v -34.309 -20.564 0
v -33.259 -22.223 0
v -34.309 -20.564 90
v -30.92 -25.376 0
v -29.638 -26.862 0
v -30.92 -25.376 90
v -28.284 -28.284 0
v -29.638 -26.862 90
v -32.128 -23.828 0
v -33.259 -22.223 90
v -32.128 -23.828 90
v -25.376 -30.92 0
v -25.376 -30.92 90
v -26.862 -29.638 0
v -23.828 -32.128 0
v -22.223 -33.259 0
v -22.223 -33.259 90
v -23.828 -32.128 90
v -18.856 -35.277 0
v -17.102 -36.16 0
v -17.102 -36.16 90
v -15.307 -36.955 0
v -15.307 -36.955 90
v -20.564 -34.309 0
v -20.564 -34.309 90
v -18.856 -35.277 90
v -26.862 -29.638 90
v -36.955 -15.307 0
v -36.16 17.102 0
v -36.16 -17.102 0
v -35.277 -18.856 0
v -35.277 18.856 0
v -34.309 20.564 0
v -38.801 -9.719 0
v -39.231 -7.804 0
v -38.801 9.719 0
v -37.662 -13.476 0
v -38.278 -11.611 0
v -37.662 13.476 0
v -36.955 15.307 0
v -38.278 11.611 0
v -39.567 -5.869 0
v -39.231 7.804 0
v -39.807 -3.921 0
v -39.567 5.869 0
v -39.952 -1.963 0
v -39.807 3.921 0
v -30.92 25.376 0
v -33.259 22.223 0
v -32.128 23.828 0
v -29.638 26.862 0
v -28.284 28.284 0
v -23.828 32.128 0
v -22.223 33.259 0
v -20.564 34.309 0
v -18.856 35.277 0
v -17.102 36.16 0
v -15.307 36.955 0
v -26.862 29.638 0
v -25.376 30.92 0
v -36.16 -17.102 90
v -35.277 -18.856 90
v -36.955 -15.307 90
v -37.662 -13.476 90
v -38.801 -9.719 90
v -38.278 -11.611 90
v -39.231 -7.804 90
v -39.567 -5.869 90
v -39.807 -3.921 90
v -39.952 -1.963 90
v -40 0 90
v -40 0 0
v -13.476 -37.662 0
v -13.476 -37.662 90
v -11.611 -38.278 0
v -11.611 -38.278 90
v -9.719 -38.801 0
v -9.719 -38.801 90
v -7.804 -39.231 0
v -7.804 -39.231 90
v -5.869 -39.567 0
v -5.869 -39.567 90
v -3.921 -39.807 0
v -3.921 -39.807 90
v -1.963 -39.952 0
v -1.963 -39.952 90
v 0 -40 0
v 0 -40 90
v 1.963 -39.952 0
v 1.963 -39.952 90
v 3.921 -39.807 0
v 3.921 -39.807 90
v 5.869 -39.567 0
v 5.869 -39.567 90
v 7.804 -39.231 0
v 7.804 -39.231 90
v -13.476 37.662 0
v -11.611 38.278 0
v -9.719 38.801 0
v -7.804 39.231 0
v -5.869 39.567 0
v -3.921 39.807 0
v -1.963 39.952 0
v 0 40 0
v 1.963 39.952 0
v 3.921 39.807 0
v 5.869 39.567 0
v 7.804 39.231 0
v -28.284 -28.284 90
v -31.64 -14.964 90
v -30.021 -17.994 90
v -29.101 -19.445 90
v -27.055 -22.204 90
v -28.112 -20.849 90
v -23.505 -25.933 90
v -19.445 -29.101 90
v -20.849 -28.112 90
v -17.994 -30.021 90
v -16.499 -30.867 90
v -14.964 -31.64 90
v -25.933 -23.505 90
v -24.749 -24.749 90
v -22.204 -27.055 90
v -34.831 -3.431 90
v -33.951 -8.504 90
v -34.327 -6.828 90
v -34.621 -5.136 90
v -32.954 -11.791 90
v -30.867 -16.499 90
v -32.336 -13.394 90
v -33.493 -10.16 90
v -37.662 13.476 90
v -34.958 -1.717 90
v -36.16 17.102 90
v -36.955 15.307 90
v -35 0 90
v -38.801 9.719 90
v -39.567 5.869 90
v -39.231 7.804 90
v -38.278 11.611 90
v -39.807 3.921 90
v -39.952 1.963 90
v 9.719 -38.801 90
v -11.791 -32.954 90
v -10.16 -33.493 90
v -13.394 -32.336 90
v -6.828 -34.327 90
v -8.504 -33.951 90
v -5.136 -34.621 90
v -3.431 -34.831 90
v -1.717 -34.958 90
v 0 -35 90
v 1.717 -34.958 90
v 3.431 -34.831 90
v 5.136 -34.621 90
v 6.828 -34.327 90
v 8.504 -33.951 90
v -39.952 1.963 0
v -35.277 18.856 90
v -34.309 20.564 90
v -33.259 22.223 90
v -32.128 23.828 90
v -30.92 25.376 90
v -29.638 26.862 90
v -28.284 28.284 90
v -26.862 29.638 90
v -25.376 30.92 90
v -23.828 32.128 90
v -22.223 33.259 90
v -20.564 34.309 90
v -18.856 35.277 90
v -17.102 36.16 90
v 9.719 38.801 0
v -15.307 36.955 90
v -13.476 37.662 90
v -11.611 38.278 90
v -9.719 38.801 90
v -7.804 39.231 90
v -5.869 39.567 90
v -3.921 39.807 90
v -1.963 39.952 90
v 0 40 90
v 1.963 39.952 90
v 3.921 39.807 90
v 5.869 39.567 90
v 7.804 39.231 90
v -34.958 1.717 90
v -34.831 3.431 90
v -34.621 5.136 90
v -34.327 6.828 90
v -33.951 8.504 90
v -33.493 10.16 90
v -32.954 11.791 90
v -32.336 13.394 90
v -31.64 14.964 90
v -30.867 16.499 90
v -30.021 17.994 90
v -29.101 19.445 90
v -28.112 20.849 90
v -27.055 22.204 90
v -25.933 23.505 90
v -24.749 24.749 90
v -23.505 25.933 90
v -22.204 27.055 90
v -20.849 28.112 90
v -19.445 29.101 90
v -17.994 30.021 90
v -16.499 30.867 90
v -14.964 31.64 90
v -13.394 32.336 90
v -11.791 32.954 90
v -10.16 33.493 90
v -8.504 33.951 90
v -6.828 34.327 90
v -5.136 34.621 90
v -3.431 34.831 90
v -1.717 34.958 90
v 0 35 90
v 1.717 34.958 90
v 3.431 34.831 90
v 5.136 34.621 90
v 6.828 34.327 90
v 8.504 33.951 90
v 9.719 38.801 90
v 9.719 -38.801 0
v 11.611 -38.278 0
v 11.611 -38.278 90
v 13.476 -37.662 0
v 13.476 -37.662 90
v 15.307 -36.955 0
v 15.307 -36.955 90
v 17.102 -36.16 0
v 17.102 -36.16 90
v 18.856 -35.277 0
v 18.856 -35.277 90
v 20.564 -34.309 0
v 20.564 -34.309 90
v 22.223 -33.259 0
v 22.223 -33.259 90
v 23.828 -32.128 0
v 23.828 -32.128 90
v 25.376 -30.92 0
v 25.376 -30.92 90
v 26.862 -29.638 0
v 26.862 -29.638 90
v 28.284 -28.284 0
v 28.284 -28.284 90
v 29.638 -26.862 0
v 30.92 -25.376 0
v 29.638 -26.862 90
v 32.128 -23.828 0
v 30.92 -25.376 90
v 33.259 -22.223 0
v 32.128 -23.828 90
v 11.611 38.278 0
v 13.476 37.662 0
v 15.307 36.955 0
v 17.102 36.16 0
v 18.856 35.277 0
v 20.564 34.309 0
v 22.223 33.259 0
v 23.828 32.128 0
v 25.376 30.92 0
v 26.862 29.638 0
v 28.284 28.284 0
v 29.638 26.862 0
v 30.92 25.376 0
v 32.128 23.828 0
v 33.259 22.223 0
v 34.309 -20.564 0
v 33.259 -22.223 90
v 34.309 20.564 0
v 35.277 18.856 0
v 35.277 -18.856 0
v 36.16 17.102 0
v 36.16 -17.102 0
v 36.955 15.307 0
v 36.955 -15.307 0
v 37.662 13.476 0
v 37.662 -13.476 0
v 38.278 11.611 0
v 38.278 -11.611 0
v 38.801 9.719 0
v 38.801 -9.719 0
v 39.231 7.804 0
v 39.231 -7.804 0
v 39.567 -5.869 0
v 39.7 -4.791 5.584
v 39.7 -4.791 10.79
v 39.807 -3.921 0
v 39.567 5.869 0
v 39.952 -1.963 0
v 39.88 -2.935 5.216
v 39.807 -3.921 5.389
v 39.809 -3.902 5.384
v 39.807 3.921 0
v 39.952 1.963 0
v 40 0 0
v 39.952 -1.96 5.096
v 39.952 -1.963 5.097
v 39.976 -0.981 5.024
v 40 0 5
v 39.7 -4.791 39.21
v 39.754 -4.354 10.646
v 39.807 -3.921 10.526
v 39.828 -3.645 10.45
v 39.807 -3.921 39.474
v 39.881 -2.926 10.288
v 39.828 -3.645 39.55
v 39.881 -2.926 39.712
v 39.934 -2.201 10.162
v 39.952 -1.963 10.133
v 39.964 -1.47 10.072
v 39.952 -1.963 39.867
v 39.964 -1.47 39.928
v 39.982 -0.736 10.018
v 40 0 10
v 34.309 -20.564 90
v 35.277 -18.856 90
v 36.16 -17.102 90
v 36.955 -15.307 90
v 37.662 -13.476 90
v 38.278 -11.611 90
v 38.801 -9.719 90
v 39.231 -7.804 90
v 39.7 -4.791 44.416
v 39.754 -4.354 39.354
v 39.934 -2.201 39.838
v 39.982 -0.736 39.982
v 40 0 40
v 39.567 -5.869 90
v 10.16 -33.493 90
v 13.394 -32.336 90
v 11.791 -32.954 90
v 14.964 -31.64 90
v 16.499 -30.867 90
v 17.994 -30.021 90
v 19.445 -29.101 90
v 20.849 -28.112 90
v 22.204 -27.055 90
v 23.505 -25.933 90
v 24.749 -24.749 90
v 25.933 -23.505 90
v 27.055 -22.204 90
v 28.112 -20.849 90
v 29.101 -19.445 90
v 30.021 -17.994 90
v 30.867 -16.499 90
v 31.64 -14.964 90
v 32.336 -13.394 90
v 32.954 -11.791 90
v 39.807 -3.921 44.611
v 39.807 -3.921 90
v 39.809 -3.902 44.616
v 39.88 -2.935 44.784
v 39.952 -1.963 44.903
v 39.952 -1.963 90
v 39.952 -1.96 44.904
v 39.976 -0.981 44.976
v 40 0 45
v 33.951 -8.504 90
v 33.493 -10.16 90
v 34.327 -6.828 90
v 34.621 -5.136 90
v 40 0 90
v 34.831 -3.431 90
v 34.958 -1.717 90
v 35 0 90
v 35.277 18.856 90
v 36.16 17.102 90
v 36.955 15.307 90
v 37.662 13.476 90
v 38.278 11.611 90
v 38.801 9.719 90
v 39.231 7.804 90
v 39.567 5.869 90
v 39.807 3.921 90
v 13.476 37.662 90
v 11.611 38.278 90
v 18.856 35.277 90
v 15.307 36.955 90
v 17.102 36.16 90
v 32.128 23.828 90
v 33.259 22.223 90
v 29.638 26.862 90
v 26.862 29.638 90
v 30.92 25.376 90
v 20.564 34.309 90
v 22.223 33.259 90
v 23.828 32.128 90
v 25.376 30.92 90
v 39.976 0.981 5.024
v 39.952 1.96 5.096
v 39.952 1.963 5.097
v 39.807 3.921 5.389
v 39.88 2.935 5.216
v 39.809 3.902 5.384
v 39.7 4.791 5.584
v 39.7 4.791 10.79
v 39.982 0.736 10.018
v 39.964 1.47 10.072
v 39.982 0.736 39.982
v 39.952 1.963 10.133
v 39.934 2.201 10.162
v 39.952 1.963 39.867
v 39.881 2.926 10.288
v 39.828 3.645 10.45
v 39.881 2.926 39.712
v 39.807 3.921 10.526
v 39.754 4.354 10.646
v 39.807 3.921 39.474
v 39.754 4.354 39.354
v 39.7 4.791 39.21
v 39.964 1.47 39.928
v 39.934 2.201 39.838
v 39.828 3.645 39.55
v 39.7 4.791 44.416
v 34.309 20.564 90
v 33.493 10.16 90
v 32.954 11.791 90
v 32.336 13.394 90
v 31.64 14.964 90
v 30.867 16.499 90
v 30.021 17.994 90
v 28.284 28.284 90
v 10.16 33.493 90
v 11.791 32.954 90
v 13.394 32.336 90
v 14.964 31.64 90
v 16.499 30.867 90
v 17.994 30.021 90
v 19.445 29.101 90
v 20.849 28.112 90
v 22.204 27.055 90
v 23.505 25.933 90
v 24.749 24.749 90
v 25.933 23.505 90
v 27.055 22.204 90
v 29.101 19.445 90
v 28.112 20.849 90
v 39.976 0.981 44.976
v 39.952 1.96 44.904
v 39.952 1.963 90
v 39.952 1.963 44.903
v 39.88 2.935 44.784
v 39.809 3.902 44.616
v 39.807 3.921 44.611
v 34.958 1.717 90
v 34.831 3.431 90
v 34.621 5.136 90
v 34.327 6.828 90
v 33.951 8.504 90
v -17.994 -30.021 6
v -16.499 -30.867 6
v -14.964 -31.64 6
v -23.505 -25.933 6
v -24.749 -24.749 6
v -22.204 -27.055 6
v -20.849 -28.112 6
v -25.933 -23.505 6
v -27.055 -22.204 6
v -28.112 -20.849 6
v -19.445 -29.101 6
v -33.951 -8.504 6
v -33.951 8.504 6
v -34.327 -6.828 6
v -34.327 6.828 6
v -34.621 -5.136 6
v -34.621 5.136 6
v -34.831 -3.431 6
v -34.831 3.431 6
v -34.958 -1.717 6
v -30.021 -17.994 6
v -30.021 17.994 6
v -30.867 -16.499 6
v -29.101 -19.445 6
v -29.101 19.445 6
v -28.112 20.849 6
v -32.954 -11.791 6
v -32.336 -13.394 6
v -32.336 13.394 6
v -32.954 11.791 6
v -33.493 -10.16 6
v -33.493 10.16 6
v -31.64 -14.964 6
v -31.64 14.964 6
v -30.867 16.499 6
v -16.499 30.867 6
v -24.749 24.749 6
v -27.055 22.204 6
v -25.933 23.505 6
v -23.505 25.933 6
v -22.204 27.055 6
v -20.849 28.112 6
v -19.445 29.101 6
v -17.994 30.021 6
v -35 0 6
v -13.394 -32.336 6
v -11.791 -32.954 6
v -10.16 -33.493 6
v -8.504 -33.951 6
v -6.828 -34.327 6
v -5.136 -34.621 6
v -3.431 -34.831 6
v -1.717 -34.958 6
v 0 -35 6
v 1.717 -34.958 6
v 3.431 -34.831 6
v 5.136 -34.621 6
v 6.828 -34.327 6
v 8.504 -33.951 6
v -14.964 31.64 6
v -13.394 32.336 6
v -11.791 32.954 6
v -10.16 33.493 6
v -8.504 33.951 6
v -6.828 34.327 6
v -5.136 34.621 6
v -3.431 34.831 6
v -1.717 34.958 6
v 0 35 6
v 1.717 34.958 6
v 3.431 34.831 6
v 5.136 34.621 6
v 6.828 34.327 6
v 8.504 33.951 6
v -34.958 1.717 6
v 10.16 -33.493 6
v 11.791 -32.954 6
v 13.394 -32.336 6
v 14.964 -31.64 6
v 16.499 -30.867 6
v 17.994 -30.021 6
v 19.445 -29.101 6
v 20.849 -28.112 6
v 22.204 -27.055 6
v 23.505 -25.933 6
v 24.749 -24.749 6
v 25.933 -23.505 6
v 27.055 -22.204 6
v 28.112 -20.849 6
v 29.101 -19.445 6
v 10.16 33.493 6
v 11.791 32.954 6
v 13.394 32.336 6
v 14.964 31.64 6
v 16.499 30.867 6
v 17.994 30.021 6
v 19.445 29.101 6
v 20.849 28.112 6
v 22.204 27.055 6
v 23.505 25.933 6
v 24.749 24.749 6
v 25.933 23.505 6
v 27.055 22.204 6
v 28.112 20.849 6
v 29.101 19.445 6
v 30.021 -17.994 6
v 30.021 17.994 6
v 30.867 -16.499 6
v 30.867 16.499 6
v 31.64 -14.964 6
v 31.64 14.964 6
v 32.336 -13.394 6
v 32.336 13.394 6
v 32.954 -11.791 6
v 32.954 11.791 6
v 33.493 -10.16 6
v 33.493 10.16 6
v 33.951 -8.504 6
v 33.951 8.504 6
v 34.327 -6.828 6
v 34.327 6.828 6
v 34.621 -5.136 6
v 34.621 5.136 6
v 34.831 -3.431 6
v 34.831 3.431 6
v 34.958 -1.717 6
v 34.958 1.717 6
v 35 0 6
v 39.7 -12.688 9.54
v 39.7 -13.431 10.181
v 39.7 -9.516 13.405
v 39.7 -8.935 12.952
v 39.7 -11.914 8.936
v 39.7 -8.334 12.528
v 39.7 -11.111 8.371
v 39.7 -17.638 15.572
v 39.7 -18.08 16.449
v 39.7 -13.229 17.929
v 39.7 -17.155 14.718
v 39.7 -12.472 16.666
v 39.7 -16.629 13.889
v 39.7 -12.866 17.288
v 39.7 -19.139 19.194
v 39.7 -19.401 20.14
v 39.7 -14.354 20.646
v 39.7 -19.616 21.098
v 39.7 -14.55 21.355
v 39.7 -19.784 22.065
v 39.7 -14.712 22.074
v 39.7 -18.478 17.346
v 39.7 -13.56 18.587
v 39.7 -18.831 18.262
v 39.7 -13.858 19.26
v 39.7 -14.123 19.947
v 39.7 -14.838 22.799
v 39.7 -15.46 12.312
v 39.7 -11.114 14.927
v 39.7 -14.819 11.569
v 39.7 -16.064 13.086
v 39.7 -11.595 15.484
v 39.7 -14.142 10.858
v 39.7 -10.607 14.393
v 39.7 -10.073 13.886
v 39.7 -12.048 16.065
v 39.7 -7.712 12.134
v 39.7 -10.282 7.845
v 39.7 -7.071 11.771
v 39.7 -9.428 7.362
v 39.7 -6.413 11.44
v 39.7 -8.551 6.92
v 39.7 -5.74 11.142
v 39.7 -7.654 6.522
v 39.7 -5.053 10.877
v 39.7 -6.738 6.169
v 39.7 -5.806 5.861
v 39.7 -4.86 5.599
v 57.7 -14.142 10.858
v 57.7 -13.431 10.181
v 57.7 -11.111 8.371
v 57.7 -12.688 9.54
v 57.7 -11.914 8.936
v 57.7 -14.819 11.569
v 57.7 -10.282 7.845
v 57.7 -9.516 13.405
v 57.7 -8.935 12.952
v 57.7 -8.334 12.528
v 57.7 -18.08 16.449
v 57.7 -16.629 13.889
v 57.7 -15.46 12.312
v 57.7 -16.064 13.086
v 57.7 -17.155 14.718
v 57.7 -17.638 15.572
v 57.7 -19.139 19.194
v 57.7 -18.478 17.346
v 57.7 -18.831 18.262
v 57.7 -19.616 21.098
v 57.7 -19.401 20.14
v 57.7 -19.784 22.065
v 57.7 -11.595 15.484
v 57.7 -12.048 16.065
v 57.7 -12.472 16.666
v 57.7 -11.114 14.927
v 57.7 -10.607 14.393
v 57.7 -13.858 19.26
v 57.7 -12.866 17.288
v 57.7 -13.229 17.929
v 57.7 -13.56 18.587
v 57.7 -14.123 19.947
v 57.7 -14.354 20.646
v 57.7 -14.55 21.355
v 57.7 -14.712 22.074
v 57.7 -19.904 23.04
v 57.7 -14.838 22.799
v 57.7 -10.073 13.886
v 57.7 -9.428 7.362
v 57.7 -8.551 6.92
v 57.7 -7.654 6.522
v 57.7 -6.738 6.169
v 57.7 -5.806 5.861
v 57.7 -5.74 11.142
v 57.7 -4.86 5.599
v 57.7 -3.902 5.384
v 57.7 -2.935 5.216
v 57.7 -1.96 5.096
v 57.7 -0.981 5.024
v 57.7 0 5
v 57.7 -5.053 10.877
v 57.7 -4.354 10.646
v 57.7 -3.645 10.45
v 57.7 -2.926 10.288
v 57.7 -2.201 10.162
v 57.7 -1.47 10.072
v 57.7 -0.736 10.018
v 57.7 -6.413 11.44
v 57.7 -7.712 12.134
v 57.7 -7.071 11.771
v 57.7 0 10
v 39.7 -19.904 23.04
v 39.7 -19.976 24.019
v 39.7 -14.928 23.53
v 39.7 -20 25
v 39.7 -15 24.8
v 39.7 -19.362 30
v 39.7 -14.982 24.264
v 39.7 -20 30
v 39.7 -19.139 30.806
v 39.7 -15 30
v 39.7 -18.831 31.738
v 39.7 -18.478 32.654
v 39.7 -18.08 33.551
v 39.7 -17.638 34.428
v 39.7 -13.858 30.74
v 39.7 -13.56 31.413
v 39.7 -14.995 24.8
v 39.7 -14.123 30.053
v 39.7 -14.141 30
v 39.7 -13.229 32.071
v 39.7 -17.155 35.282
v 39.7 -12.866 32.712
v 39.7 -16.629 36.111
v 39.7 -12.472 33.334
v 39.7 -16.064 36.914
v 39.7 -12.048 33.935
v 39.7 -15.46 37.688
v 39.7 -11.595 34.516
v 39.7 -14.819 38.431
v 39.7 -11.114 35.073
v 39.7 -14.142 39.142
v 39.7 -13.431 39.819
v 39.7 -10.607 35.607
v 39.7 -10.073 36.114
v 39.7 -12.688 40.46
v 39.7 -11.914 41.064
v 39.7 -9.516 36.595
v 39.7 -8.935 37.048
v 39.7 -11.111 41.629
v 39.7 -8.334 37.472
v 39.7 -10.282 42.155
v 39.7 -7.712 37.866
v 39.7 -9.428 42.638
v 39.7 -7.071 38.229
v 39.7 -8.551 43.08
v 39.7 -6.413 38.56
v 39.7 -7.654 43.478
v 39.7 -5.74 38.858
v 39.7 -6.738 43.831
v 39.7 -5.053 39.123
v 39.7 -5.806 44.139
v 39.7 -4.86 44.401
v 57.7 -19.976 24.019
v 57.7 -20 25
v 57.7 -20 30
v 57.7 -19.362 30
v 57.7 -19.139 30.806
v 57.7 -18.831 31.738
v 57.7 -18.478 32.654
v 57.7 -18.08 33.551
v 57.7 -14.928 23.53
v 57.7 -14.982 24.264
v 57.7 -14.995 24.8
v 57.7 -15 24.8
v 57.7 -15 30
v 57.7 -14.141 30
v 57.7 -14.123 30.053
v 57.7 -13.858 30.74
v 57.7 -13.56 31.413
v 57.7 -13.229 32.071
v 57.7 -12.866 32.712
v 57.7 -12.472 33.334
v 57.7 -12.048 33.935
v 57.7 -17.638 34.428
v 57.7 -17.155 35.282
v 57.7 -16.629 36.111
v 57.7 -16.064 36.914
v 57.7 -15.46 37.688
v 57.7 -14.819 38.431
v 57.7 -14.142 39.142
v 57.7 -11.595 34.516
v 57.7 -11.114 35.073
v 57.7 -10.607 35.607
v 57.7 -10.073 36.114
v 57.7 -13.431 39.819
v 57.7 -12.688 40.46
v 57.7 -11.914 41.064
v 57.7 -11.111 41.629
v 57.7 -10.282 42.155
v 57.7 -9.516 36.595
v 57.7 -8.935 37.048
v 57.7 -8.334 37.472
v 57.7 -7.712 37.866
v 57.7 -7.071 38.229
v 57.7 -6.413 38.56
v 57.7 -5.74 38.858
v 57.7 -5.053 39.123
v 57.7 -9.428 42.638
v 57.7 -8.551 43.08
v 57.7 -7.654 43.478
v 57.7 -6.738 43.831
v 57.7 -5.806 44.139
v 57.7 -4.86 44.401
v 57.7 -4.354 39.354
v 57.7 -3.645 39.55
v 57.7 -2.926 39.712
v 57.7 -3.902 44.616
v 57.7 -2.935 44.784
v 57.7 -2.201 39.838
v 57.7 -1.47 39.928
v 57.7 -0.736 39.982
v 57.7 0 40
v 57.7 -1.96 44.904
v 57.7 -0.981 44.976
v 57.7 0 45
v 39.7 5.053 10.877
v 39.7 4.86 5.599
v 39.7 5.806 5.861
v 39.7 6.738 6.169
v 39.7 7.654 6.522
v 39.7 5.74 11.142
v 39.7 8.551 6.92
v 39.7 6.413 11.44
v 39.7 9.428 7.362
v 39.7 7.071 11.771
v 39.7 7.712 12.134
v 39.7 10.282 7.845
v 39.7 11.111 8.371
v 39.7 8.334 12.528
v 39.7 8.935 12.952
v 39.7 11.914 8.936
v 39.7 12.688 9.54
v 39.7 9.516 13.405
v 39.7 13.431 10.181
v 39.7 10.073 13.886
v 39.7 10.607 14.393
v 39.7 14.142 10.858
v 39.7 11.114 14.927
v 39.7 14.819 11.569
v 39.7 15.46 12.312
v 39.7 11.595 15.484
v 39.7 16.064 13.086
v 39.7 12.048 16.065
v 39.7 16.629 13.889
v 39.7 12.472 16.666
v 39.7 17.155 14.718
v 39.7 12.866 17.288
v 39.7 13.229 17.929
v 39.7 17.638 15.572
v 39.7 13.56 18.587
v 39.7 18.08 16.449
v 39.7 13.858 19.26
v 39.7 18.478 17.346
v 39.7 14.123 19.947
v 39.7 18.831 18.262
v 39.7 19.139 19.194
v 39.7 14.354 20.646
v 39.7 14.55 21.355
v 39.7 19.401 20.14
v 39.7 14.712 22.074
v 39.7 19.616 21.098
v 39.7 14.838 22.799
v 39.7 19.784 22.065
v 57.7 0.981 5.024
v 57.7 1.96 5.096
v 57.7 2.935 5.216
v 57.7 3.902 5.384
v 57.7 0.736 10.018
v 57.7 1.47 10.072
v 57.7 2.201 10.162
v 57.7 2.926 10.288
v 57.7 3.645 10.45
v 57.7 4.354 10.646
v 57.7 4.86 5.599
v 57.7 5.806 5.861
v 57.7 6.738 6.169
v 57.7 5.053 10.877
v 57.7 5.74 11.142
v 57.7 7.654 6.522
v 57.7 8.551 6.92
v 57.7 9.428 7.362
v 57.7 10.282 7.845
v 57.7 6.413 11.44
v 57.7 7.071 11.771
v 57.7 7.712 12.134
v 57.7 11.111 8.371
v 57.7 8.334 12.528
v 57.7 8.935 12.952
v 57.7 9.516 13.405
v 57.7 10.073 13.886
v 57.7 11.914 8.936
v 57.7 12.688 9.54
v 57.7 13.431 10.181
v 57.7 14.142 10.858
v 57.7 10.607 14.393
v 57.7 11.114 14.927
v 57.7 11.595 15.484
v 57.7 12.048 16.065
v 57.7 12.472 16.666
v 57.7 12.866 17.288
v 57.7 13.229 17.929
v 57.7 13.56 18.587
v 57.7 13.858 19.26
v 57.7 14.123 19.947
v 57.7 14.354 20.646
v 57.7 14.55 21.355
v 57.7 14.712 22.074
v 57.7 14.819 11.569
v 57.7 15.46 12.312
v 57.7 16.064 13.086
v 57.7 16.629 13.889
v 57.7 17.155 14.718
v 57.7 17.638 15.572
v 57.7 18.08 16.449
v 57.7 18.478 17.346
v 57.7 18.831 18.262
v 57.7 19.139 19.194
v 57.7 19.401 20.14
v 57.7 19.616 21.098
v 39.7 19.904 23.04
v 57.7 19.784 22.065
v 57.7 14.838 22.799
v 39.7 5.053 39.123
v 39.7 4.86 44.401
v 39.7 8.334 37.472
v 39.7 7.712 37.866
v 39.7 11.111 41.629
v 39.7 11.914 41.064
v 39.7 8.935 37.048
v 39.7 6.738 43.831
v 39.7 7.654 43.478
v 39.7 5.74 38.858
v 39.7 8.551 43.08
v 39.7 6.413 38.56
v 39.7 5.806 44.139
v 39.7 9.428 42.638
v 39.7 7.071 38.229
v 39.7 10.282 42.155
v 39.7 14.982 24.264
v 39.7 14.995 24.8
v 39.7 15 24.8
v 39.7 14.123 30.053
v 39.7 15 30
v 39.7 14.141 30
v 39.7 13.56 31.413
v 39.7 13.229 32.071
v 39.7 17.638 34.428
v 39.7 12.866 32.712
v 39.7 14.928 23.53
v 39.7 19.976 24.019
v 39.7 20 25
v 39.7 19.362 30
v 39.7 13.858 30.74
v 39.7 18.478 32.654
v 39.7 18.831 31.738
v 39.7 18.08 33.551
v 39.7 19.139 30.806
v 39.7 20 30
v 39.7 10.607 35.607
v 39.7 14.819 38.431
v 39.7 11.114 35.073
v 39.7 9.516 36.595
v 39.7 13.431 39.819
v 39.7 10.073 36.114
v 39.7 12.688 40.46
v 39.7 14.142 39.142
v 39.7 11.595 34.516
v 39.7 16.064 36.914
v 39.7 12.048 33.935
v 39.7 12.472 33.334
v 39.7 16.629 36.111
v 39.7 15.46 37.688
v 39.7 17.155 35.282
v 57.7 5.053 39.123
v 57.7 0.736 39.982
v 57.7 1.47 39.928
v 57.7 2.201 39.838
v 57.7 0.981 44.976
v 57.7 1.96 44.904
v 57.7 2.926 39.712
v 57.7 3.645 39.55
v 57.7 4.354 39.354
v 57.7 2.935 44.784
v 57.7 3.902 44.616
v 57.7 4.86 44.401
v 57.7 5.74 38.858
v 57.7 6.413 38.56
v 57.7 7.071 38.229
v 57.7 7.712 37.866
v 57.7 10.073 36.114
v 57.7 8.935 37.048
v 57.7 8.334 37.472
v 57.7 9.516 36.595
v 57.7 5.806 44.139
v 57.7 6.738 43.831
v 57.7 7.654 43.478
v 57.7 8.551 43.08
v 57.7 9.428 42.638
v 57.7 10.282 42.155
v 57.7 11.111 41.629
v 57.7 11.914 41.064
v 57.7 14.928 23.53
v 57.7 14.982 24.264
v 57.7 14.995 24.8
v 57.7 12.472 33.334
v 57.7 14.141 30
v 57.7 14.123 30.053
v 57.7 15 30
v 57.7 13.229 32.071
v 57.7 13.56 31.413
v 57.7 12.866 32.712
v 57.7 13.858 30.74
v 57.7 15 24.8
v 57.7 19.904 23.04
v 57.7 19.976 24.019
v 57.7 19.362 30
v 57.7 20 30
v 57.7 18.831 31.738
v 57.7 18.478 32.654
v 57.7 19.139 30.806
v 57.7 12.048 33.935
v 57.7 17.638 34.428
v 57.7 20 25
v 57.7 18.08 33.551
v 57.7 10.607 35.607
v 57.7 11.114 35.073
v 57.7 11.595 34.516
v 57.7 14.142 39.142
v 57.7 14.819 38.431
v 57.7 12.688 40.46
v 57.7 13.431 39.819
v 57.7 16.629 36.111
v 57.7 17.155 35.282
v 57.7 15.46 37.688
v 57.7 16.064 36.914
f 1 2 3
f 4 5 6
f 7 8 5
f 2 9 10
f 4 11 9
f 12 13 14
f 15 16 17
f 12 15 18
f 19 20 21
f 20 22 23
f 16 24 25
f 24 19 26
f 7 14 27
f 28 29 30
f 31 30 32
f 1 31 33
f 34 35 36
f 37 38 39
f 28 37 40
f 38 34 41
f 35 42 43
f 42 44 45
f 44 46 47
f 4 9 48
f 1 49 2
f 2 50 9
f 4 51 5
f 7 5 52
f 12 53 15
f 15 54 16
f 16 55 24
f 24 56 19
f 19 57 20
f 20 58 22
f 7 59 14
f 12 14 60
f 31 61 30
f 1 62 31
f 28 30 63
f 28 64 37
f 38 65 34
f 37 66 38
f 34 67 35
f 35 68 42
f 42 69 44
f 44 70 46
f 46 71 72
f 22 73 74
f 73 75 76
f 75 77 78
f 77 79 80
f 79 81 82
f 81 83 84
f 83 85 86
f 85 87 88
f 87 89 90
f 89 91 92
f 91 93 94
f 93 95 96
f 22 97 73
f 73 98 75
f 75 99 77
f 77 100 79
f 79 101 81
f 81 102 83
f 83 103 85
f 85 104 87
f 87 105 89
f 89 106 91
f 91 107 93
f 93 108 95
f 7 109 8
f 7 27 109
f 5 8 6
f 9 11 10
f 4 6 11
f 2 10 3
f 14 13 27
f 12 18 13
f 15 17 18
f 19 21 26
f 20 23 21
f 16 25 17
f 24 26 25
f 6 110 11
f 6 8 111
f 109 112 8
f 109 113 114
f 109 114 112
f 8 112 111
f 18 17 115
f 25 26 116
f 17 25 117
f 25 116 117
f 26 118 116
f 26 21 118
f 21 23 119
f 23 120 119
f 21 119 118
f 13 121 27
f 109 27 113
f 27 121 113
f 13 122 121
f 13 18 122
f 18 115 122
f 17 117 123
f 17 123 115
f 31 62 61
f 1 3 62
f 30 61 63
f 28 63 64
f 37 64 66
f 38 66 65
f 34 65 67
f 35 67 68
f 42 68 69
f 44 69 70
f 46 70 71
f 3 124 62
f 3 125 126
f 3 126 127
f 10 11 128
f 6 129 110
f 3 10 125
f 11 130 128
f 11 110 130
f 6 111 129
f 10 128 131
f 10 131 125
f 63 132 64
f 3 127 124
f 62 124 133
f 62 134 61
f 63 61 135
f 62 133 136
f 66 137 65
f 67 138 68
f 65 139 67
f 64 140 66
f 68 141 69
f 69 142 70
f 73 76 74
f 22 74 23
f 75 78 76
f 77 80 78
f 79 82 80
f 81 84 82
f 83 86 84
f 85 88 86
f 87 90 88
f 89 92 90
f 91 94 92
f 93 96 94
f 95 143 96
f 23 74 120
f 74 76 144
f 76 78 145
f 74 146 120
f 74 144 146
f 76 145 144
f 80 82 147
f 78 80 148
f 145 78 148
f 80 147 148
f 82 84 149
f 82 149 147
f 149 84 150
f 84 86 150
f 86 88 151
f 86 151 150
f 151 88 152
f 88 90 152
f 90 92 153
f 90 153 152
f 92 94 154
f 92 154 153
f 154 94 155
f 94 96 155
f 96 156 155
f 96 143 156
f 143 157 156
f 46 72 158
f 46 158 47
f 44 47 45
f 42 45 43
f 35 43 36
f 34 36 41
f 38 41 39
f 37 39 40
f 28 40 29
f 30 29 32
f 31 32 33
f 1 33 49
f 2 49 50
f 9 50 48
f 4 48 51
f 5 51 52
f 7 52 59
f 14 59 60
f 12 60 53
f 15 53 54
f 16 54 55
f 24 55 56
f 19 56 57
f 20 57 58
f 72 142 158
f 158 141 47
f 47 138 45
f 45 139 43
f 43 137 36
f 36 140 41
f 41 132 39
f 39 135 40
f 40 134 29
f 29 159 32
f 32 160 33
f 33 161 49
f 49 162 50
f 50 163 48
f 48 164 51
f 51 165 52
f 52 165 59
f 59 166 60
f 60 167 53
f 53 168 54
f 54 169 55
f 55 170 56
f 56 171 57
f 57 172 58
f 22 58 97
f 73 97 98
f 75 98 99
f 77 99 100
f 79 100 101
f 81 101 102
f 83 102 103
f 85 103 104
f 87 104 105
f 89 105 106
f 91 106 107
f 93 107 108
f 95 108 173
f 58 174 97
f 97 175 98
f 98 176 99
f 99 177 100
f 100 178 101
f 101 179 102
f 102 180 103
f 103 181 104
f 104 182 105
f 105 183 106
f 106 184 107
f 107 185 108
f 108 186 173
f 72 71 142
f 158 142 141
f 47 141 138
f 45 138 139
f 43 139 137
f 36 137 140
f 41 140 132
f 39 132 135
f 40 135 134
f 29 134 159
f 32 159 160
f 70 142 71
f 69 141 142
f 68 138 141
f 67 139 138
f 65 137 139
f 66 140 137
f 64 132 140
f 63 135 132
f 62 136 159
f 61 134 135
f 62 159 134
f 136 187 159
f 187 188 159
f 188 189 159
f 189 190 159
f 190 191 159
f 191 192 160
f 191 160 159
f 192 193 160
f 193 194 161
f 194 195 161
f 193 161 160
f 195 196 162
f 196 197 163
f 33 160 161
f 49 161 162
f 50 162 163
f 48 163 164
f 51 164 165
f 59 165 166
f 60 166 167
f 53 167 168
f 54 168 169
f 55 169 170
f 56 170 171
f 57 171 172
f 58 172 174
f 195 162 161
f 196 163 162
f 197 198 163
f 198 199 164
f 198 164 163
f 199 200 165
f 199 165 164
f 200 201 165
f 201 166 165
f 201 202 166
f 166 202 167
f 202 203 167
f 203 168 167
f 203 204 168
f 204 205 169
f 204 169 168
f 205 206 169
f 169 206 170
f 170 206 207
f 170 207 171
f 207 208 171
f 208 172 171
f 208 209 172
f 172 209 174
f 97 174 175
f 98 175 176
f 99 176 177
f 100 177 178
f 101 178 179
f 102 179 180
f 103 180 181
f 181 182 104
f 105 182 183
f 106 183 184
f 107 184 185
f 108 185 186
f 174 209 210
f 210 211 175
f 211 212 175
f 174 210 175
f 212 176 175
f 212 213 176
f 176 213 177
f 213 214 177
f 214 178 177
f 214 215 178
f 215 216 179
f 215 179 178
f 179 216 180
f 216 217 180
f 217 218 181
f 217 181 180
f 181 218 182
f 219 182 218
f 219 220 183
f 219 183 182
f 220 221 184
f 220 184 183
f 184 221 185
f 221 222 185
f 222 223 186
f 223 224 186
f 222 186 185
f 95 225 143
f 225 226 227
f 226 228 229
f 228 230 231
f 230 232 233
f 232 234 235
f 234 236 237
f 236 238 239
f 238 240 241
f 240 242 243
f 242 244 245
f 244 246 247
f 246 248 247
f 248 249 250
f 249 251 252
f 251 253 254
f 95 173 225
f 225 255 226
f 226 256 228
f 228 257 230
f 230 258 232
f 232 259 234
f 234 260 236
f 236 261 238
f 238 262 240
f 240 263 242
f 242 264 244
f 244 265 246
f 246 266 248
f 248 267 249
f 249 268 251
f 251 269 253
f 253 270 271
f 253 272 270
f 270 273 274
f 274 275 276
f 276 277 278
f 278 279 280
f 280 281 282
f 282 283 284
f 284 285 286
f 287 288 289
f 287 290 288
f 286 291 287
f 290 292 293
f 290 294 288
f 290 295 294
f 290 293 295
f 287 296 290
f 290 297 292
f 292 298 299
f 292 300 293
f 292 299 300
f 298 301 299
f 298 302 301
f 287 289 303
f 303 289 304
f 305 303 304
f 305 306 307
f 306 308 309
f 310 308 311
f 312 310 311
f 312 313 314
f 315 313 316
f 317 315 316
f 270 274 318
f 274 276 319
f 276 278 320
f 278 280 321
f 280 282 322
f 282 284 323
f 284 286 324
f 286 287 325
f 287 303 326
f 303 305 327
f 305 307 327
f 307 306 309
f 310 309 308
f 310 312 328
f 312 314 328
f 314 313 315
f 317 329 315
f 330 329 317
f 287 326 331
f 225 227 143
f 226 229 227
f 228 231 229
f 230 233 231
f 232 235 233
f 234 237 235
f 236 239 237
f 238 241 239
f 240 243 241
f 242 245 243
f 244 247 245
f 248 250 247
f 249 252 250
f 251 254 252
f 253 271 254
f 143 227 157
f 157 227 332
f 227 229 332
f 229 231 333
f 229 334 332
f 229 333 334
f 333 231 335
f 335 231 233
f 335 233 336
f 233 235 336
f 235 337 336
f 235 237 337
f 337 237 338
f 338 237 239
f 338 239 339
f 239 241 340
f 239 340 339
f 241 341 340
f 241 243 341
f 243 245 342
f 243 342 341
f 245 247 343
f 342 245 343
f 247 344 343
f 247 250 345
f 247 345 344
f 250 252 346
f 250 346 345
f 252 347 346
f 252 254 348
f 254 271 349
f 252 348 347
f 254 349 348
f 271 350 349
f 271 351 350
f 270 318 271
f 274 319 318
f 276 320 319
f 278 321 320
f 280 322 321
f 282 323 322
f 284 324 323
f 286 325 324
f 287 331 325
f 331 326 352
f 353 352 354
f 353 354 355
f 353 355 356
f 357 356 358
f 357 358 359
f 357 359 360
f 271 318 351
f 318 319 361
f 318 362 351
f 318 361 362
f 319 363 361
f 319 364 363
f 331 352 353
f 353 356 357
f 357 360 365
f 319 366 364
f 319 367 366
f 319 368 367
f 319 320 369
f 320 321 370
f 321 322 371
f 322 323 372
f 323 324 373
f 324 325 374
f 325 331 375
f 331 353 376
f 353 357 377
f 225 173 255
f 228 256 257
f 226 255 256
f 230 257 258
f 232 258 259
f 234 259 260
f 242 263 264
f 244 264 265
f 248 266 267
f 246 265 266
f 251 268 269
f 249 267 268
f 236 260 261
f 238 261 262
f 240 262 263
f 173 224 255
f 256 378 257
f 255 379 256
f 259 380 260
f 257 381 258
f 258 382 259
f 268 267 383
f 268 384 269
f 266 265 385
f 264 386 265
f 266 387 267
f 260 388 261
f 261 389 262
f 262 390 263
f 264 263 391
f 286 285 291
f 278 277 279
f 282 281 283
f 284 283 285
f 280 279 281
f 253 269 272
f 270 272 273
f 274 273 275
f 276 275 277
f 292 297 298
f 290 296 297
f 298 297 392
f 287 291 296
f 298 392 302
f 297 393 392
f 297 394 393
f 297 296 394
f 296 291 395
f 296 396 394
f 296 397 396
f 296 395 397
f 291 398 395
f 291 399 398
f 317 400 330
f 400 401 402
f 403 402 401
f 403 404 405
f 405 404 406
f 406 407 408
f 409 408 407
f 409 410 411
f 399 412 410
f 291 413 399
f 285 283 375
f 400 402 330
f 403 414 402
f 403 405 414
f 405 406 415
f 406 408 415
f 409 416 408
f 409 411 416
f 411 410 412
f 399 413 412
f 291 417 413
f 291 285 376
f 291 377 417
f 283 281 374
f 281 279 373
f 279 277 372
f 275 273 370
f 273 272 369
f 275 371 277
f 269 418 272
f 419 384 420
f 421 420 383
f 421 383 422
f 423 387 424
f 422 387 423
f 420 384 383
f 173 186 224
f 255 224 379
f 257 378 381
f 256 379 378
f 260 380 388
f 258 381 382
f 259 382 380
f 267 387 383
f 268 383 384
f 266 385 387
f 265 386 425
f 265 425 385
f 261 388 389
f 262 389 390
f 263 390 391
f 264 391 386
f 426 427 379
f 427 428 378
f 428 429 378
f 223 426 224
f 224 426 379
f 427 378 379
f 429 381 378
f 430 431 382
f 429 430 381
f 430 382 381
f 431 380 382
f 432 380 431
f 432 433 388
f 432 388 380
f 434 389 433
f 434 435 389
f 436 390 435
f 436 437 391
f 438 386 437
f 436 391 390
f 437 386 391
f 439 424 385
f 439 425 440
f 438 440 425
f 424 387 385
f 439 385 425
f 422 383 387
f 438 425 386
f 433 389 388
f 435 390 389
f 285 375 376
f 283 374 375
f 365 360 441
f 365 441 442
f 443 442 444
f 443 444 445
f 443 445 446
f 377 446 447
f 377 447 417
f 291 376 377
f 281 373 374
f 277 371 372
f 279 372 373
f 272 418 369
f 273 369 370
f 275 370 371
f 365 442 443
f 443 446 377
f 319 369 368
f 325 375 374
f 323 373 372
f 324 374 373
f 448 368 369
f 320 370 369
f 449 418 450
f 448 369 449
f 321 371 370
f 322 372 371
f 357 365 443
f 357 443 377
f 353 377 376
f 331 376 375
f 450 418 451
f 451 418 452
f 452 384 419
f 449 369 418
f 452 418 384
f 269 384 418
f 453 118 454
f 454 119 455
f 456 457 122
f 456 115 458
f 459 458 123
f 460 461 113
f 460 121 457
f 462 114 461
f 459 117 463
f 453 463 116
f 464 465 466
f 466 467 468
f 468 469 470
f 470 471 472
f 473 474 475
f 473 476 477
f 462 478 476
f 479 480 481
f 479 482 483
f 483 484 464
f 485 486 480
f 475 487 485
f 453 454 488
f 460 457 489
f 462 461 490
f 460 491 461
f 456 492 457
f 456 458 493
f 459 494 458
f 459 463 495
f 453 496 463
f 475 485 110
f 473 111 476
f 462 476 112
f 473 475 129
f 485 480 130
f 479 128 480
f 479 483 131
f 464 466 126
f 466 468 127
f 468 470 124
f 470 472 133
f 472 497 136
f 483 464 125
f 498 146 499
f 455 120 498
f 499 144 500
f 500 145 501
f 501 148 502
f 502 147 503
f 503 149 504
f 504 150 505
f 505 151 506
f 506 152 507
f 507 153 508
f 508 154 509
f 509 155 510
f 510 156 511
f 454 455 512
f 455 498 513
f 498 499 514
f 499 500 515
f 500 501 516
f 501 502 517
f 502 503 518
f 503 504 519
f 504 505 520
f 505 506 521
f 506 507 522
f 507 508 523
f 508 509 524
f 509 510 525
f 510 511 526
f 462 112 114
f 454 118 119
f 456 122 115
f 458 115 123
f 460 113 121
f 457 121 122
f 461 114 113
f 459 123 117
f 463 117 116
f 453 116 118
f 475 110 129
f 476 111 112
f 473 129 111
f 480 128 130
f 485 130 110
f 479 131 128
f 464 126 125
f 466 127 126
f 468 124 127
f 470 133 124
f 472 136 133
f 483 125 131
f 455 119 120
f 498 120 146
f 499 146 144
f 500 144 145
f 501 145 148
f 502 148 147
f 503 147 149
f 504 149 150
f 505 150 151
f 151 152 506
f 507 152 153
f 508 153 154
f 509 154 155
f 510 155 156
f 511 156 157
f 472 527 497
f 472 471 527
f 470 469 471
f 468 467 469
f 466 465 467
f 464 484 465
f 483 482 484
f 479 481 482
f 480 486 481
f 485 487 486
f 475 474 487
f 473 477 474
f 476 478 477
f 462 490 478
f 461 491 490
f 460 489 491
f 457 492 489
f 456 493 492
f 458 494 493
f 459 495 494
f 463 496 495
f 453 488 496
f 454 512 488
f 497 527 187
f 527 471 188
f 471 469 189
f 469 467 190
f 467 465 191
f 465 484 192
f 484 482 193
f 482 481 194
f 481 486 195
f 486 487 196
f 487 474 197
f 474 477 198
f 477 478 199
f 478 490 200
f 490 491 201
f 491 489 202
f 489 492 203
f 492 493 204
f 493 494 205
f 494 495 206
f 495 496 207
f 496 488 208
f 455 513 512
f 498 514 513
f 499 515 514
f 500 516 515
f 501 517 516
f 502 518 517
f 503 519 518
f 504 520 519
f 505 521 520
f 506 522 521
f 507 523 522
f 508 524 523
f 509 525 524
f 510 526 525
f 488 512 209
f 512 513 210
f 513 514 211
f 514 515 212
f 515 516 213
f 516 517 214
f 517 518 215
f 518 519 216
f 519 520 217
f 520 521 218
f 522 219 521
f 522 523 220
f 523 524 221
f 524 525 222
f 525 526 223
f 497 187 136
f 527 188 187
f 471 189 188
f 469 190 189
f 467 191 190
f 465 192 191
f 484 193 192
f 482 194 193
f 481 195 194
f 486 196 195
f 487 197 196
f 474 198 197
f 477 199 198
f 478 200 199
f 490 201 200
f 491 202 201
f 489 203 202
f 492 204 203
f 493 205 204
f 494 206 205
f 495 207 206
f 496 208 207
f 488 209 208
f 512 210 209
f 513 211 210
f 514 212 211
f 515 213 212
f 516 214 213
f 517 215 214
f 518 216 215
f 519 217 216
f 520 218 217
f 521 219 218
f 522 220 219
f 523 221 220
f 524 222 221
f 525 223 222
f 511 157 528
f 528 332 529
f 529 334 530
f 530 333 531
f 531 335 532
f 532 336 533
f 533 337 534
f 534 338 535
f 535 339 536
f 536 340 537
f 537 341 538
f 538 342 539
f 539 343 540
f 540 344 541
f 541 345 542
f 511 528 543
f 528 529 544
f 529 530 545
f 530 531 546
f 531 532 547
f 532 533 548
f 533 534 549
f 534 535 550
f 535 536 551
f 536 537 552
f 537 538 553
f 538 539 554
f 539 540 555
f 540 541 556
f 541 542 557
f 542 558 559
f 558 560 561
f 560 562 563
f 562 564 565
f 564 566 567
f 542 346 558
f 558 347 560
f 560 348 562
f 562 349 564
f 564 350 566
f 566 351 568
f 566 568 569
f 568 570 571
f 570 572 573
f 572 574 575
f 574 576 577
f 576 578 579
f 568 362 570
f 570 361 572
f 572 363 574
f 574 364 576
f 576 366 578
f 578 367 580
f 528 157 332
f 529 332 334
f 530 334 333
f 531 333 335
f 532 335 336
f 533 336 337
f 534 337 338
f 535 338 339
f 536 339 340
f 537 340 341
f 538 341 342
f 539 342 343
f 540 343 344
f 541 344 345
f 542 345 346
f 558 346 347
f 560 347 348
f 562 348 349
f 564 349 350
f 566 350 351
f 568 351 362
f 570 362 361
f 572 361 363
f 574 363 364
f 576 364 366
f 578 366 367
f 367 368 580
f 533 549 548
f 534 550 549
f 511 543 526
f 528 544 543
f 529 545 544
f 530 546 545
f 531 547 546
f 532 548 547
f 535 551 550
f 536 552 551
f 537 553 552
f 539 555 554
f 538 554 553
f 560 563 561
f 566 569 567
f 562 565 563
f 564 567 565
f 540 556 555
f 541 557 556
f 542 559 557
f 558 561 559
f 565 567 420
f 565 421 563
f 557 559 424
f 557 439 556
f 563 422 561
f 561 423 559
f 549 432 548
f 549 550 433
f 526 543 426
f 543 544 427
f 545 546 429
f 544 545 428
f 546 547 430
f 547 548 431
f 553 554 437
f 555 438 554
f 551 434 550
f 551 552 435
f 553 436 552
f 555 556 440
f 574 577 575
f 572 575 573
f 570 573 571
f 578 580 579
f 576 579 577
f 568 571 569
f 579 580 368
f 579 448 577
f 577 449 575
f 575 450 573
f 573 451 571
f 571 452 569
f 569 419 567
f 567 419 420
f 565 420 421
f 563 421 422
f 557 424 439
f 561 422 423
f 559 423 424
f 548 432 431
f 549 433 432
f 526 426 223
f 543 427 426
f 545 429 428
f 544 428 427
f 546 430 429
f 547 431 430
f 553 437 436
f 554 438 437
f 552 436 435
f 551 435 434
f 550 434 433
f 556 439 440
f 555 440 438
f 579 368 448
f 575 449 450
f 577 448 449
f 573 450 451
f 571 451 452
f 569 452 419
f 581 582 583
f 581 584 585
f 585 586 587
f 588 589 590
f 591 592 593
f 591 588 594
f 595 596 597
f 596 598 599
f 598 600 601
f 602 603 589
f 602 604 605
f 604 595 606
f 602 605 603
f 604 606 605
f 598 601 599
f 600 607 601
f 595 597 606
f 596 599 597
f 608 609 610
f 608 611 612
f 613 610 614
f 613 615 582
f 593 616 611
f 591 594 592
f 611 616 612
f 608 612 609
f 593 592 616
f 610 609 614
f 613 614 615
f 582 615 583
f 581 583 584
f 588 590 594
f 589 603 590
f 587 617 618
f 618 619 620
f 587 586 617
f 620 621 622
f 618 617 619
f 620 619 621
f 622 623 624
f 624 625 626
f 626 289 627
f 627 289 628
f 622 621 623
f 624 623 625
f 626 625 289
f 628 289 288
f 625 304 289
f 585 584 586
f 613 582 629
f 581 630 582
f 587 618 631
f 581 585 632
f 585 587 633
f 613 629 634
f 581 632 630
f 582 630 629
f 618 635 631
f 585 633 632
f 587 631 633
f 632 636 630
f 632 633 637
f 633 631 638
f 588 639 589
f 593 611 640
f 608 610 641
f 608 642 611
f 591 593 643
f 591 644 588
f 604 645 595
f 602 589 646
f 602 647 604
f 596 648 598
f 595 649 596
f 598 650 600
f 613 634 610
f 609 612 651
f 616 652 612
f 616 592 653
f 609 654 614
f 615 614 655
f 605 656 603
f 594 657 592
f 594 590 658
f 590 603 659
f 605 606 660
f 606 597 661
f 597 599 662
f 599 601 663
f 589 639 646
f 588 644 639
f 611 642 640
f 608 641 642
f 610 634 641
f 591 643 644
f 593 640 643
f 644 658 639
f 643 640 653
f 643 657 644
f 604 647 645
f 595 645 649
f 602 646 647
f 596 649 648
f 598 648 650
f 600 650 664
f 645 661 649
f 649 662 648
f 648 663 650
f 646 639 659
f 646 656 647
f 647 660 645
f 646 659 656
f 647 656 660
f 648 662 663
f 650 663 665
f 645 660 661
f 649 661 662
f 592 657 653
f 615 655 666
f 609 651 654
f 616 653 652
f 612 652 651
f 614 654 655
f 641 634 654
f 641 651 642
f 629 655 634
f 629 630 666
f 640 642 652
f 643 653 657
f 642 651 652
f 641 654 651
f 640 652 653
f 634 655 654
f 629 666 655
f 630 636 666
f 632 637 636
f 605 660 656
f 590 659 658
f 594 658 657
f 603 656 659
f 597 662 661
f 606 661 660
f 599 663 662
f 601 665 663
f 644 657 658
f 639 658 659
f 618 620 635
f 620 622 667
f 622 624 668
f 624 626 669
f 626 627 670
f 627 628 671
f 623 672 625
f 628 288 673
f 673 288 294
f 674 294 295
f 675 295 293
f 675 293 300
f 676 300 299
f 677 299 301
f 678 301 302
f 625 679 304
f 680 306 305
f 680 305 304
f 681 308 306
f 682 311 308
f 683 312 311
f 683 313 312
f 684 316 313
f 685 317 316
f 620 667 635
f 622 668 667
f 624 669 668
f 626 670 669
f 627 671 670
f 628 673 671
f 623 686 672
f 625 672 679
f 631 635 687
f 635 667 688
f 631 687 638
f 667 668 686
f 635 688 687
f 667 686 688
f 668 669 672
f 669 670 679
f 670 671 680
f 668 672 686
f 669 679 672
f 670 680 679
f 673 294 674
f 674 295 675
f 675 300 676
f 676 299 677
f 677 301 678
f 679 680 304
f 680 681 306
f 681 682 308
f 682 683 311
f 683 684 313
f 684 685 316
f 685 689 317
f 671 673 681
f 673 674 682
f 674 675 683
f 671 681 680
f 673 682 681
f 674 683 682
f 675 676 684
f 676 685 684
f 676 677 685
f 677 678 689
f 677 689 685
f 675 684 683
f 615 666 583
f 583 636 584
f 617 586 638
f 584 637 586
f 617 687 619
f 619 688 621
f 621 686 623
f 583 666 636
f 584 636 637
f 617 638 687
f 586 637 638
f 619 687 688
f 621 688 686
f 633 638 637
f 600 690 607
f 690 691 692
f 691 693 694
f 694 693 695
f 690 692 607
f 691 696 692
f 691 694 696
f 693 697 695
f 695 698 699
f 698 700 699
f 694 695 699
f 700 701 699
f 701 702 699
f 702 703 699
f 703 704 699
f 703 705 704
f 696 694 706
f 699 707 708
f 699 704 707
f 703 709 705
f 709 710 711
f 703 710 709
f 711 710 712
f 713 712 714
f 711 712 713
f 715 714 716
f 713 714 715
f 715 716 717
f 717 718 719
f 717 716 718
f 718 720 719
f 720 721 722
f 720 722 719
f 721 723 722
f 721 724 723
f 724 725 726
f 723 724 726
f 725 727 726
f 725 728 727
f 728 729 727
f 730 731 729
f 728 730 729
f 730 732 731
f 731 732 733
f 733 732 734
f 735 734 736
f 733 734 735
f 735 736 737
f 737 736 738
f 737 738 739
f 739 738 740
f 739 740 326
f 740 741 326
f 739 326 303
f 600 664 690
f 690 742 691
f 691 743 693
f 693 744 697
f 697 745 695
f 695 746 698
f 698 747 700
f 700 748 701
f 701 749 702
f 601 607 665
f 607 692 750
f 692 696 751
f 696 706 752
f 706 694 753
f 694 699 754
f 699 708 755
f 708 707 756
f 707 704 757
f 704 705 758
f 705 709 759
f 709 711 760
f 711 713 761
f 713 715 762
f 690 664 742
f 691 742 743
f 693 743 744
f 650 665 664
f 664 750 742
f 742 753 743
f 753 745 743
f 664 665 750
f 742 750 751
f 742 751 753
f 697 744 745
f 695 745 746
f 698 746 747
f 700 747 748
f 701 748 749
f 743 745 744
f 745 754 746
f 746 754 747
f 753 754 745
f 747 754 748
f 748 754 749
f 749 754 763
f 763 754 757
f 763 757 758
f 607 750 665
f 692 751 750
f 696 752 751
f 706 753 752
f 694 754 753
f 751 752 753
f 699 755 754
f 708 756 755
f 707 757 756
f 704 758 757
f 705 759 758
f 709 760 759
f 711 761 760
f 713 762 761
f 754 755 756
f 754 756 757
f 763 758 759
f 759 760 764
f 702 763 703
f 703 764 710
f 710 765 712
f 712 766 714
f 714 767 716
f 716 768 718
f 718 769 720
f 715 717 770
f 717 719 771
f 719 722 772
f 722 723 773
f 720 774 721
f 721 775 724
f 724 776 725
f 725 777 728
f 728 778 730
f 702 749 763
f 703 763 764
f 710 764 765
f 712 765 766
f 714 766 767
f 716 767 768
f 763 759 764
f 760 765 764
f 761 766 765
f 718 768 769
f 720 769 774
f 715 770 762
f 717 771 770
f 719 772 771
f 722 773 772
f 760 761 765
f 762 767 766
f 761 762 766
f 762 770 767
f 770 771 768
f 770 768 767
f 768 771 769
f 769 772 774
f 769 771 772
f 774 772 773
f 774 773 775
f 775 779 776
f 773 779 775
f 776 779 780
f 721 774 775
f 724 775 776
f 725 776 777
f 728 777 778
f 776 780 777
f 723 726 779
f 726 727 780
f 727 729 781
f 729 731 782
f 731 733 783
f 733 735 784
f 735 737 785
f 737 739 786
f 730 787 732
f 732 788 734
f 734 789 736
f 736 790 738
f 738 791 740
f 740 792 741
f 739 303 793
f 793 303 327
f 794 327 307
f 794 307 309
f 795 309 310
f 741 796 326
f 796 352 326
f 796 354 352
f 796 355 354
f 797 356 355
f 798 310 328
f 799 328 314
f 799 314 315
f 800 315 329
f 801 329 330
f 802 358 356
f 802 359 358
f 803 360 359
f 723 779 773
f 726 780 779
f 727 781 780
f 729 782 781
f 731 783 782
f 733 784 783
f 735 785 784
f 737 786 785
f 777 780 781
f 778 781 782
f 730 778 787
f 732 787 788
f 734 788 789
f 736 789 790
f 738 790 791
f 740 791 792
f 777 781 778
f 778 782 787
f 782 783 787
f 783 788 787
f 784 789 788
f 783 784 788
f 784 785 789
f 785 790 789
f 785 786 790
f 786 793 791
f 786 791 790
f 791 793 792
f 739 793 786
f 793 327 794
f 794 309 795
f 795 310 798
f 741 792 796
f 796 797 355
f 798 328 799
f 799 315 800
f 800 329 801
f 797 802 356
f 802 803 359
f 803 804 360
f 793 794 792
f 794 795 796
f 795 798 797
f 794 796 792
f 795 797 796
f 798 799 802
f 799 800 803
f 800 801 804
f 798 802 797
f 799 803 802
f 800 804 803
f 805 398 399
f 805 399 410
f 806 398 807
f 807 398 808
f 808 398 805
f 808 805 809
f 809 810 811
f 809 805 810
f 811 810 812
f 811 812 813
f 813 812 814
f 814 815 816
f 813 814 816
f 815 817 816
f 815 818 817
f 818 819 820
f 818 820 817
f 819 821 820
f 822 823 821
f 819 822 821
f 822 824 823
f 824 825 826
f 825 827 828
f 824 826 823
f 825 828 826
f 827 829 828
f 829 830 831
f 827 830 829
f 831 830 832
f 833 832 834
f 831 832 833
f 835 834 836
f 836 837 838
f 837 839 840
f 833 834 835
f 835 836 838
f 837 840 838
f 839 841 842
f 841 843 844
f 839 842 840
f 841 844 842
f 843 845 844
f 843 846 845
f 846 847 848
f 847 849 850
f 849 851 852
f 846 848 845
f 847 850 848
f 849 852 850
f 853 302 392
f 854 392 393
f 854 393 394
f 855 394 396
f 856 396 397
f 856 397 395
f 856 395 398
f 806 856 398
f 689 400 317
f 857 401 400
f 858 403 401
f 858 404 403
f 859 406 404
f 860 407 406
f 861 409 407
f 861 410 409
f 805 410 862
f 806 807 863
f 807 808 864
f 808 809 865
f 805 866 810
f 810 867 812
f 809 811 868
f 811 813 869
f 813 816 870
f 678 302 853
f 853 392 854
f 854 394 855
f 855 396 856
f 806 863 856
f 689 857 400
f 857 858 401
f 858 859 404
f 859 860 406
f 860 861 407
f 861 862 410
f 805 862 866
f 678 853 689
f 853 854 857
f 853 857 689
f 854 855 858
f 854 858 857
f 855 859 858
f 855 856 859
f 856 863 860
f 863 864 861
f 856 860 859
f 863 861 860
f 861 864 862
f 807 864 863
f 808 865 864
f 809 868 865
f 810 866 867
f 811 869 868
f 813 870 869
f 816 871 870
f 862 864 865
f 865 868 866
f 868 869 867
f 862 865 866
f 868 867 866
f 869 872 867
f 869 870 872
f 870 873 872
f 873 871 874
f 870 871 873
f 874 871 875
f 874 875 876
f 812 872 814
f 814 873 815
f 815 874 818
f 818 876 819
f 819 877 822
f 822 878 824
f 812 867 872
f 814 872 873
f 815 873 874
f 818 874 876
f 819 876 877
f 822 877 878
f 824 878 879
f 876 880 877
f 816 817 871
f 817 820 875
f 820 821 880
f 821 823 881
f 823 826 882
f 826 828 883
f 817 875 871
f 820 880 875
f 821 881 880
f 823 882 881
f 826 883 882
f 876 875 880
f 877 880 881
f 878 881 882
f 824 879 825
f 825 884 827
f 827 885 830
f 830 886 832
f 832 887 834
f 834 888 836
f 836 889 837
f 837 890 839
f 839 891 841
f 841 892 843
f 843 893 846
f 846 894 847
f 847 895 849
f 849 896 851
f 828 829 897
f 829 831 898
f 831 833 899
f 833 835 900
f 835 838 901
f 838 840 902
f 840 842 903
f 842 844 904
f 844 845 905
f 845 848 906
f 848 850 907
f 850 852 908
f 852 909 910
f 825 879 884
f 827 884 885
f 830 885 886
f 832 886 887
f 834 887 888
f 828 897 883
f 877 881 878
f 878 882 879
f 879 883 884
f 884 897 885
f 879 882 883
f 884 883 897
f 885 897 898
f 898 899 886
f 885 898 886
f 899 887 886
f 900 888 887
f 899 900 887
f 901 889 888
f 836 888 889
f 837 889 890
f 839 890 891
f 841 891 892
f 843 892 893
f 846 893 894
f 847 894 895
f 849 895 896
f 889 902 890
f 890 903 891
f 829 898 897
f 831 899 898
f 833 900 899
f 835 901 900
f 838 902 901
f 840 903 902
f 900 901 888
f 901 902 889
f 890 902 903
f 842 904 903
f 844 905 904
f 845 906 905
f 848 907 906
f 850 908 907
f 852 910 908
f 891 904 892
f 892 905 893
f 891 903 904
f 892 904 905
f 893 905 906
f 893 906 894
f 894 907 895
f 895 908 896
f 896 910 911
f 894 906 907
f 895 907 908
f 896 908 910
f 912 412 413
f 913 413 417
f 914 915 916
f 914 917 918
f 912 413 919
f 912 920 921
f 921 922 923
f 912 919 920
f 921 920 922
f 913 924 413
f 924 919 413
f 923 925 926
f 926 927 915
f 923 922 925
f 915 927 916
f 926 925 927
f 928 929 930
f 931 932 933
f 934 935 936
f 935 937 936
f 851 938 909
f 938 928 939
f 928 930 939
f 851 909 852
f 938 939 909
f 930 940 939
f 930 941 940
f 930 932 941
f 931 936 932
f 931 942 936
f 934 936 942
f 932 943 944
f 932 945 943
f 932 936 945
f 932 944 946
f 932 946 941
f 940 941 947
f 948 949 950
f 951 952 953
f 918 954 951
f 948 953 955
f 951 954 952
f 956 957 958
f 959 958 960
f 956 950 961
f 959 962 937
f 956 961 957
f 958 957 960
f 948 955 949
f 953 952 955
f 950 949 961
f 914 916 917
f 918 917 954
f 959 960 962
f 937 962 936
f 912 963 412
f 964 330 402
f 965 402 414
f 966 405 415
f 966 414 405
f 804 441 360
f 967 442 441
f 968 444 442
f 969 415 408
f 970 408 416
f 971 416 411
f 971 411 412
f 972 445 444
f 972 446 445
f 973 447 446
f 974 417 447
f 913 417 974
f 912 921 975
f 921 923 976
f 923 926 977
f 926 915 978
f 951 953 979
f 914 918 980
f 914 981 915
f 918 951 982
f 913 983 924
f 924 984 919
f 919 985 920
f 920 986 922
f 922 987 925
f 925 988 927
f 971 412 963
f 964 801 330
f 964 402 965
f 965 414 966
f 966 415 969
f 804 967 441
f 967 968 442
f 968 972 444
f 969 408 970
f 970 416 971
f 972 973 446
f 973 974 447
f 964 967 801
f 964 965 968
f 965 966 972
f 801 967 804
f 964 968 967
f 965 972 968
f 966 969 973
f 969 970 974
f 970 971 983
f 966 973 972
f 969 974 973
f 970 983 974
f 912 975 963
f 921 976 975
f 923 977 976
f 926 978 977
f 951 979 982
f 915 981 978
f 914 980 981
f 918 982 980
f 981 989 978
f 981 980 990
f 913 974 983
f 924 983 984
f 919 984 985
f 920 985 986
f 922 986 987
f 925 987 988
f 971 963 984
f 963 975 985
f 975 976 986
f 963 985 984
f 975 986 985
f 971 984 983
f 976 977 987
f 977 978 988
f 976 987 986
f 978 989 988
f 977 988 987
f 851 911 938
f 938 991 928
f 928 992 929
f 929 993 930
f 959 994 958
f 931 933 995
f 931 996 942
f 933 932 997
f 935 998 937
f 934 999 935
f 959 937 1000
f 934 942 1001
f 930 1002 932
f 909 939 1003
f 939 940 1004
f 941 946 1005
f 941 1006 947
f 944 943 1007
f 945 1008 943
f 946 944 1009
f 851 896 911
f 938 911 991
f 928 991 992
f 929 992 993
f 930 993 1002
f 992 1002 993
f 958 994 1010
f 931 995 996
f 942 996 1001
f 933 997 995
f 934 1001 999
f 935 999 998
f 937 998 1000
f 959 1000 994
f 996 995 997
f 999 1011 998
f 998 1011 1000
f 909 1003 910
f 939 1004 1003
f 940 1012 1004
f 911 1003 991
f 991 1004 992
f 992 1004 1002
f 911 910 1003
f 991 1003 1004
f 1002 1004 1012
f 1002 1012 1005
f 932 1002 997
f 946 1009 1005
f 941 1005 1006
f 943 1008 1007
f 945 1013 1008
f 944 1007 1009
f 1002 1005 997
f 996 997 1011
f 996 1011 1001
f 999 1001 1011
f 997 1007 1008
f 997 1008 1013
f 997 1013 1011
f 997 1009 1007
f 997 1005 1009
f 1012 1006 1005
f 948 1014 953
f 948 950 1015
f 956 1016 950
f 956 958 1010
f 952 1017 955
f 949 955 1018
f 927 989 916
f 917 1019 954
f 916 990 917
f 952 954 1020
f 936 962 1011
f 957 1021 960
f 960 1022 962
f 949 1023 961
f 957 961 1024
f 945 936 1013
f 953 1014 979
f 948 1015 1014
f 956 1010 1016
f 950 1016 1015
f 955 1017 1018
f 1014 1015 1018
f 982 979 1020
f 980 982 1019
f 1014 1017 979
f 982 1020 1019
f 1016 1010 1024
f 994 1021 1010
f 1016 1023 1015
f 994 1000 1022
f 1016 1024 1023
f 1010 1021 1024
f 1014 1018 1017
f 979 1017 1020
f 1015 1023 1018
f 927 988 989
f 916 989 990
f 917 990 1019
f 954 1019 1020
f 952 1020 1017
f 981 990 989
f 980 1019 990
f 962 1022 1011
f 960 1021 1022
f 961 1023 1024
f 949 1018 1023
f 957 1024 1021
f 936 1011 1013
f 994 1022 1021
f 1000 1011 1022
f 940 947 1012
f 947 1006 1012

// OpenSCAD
$fn = 128;

outer_d = 80;
inner_d = 70;
height = 90;
bottom_thickness = 6;

handle_clear_w = 25;
handle_clear_h = 30;
handle_wall = 5;
handle_depth = 18;

module mug_body() {
    difference() {
        cylinder(h = height, d = outer_d);
        translate([0, 0, bottom_thickness])
            cylinder(h = height - bottom_thickness + 0.1, d = inner_d);
    }
}

module handle_solid() {
    // D-shaped handle opening toward the mug body (-X side)
    // Built so the flat side can overlap the mug outer wall.
    translate([outer_d/2 - 0.8, 0, height/2 - handle_clear_h/2])
    rotate([0, 90, 0])
    linear_extrude(height = handle_depth)
    difference() {
        // outer profile
        union() {
            translate([0, -(handle_clear_h/2 + handle_wall)])
                square([handle_wall, handle_clear_h + 2*handle_wall], center = false);
            translate([handle_wall, 0])
                circle(r = handle_clear_h/2 + handle_wall);
        }

        // inner void
        union() {
            translate([0, -handle_clear_h/2])
                square([handle_wall + 0.2, handle_clear_h], center = false);
            translate([handle_wall, 0])
                circle(r = handle_clear_h/2);
        }
    }
}

union() {
    mug_body();

    // Place the handle at the mid-height and attach only on +X side
    // Slight overlap ensures a manifold union without gaps.
    translate([0.5, 0, 0])
        handle_solid();
}
